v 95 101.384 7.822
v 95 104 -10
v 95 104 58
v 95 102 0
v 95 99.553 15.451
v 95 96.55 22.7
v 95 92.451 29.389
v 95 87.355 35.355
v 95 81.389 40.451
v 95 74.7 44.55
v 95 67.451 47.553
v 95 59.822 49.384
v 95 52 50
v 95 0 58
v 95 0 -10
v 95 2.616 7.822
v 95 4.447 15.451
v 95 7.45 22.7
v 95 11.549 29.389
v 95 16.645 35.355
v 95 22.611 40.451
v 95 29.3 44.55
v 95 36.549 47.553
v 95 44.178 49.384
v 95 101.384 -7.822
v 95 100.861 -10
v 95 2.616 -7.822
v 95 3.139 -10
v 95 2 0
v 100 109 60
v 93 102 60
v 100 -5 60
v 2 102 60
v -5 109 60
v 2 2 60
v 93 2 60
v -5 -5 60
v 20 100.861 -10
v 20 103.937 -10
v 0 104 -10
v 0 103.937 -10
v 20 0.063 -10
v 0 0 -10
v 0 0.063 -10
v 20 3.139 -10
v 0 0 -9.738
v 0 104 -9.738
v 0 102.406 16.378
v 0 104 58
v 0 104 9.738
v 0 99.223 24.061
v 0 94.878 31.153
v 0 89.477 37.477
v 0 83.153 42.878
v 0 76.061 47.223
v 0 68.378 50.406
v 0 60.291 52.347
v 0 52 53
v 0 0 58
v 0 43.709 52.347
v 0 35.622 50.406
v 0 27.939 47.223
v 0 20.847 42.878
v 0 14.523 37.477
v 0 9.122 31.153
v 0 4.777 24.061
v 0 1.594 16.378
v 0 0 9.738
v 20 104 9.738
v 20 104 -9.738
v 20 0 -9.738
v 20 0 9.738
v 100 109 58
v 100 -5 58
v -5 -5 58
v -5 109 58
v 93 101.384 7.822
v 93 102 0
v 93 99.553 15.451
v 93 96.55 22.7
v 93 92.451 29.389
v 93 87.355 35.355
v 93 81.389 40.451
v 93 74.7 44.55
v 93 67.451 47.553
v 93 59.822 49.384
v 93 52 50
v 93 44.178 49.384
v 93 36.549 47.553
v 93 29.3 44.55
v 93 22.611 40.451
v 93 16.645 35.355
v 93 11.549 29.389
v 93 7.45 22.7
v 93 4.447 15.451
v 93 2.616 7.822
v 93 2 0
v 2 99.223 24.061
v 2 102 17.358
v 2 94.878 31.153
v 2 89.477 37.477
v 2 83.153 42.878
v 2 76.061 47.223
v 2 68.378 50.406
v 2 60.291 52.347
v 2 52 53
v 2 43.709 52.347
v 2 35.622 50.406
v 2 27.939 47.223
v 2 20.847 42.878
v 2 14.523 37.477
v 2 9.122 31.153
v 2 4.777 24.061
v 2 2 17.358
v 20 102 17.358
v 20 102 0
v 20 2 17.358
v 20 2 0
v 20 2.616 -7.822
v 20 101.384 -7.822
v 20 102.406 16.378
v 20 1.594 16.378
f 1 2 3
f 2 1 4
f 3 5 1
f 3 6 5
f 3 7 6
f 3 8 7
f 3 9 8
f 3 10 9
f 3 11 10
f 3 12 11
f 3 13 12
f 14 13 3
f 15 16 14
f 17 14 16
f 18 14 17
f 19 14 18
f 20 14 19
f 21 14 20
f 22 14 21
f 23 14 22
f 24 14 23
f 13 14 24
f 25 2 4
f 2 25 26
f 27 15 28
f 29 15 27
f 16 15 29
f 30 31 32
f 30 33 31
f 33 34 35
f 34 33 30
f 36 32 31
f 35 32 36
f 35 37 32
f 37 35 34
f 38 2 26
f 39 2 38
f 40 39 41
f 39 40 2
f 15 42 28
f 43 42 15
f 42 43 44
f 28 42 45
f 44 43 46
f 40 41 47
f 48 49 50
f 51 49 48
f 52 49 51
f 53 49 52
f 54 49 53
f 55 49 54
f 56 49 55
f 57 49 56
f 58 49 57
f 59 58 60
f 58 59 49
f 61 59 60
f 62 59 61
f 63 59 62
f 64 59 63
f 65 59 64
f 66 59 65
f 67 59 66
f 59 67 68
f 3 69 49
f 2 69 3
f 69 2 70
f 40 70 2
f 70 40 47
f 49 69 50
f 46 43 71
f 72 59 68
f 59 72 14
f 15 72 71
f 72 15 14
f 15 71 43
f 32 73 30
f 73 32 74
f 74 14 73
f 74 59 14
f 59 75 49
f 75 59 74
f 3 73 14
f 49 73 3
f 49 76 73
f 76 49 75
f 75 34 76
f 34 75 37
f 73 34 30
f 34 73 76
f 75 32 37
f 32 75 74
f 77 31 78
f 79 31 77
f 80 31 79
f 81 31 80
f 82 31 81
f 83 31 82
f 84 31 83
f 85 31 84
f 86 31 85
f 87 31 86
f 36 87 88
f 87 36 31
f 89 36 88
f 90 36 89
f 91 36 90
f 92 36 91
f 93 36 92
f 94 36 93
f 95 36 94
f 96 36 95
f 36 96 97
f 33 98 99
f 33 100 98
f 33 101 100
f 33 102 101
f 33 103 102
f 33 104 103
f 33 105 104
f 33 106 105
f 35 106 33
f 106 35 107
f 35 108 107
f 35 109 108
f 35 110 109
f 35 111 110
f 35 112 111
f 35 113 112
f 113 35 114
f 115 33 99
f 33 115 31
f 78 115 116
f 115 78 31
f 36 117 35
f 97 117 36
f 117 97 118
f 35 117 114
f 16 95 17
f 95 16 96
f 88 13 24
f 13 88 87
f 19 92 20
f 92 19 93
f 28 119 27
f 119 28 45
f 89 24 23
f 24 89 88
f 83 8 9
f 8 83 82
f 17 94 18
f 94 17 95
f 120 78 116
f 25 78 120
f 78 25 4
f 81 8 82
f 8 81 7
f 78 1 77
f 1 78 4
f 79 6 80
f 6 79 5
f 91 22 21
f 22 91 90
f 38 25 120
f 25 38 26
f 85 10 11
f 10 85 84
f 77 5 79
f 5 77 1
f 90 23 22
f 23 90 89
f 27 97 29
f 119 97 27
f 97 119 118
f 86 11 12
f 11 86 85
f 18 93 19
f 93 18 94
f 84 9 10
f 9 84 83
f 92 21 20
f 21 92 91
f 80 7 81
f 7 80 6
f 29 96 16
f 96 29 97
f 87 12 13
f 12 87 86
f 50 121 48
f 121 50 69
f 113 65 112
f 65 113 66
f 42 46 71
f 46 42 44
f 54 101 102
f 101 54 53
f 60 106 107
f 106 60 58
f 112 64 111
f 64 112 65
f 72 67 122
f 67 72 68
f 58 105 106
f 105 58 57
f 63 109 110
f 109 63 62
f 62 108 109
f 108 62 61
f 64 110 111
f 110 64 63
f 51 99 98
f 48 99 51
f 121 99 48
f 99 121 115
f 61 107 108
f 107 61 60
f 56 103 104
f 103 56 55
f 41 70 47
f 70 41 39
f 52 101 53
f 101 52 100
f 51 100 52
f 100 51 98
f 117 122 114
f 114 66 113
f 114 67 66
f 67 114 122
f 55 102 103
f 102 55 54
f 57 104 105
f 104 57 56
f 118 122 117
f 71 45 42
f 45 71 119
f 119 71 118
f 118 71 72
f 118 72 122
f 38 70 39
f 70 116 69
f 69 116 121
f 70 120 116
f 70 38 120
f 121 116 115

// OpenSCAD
    difference() {
        
        
        union() {

            translate([0,0,-10]){
                cube([95, 104, 70], center=false);
            }
            translate([-5,-5,58]){
                cube([95+10, 104+10, 2], center=false);
            }

        }    

            translate([2,2,0]){
                cube([95-4, 100, 200], center=false);
            }

            translate([0, 52, 0])
            rotate([0, 90, 0]) 
                cylinder(h=1000, d=100, center=true, $fn=40);
            
            translate([0, 52, 0])
            rotate([0, 90, 0]) 
                cylinder(h=40, d=106, center=true, $fn=40);



    }
